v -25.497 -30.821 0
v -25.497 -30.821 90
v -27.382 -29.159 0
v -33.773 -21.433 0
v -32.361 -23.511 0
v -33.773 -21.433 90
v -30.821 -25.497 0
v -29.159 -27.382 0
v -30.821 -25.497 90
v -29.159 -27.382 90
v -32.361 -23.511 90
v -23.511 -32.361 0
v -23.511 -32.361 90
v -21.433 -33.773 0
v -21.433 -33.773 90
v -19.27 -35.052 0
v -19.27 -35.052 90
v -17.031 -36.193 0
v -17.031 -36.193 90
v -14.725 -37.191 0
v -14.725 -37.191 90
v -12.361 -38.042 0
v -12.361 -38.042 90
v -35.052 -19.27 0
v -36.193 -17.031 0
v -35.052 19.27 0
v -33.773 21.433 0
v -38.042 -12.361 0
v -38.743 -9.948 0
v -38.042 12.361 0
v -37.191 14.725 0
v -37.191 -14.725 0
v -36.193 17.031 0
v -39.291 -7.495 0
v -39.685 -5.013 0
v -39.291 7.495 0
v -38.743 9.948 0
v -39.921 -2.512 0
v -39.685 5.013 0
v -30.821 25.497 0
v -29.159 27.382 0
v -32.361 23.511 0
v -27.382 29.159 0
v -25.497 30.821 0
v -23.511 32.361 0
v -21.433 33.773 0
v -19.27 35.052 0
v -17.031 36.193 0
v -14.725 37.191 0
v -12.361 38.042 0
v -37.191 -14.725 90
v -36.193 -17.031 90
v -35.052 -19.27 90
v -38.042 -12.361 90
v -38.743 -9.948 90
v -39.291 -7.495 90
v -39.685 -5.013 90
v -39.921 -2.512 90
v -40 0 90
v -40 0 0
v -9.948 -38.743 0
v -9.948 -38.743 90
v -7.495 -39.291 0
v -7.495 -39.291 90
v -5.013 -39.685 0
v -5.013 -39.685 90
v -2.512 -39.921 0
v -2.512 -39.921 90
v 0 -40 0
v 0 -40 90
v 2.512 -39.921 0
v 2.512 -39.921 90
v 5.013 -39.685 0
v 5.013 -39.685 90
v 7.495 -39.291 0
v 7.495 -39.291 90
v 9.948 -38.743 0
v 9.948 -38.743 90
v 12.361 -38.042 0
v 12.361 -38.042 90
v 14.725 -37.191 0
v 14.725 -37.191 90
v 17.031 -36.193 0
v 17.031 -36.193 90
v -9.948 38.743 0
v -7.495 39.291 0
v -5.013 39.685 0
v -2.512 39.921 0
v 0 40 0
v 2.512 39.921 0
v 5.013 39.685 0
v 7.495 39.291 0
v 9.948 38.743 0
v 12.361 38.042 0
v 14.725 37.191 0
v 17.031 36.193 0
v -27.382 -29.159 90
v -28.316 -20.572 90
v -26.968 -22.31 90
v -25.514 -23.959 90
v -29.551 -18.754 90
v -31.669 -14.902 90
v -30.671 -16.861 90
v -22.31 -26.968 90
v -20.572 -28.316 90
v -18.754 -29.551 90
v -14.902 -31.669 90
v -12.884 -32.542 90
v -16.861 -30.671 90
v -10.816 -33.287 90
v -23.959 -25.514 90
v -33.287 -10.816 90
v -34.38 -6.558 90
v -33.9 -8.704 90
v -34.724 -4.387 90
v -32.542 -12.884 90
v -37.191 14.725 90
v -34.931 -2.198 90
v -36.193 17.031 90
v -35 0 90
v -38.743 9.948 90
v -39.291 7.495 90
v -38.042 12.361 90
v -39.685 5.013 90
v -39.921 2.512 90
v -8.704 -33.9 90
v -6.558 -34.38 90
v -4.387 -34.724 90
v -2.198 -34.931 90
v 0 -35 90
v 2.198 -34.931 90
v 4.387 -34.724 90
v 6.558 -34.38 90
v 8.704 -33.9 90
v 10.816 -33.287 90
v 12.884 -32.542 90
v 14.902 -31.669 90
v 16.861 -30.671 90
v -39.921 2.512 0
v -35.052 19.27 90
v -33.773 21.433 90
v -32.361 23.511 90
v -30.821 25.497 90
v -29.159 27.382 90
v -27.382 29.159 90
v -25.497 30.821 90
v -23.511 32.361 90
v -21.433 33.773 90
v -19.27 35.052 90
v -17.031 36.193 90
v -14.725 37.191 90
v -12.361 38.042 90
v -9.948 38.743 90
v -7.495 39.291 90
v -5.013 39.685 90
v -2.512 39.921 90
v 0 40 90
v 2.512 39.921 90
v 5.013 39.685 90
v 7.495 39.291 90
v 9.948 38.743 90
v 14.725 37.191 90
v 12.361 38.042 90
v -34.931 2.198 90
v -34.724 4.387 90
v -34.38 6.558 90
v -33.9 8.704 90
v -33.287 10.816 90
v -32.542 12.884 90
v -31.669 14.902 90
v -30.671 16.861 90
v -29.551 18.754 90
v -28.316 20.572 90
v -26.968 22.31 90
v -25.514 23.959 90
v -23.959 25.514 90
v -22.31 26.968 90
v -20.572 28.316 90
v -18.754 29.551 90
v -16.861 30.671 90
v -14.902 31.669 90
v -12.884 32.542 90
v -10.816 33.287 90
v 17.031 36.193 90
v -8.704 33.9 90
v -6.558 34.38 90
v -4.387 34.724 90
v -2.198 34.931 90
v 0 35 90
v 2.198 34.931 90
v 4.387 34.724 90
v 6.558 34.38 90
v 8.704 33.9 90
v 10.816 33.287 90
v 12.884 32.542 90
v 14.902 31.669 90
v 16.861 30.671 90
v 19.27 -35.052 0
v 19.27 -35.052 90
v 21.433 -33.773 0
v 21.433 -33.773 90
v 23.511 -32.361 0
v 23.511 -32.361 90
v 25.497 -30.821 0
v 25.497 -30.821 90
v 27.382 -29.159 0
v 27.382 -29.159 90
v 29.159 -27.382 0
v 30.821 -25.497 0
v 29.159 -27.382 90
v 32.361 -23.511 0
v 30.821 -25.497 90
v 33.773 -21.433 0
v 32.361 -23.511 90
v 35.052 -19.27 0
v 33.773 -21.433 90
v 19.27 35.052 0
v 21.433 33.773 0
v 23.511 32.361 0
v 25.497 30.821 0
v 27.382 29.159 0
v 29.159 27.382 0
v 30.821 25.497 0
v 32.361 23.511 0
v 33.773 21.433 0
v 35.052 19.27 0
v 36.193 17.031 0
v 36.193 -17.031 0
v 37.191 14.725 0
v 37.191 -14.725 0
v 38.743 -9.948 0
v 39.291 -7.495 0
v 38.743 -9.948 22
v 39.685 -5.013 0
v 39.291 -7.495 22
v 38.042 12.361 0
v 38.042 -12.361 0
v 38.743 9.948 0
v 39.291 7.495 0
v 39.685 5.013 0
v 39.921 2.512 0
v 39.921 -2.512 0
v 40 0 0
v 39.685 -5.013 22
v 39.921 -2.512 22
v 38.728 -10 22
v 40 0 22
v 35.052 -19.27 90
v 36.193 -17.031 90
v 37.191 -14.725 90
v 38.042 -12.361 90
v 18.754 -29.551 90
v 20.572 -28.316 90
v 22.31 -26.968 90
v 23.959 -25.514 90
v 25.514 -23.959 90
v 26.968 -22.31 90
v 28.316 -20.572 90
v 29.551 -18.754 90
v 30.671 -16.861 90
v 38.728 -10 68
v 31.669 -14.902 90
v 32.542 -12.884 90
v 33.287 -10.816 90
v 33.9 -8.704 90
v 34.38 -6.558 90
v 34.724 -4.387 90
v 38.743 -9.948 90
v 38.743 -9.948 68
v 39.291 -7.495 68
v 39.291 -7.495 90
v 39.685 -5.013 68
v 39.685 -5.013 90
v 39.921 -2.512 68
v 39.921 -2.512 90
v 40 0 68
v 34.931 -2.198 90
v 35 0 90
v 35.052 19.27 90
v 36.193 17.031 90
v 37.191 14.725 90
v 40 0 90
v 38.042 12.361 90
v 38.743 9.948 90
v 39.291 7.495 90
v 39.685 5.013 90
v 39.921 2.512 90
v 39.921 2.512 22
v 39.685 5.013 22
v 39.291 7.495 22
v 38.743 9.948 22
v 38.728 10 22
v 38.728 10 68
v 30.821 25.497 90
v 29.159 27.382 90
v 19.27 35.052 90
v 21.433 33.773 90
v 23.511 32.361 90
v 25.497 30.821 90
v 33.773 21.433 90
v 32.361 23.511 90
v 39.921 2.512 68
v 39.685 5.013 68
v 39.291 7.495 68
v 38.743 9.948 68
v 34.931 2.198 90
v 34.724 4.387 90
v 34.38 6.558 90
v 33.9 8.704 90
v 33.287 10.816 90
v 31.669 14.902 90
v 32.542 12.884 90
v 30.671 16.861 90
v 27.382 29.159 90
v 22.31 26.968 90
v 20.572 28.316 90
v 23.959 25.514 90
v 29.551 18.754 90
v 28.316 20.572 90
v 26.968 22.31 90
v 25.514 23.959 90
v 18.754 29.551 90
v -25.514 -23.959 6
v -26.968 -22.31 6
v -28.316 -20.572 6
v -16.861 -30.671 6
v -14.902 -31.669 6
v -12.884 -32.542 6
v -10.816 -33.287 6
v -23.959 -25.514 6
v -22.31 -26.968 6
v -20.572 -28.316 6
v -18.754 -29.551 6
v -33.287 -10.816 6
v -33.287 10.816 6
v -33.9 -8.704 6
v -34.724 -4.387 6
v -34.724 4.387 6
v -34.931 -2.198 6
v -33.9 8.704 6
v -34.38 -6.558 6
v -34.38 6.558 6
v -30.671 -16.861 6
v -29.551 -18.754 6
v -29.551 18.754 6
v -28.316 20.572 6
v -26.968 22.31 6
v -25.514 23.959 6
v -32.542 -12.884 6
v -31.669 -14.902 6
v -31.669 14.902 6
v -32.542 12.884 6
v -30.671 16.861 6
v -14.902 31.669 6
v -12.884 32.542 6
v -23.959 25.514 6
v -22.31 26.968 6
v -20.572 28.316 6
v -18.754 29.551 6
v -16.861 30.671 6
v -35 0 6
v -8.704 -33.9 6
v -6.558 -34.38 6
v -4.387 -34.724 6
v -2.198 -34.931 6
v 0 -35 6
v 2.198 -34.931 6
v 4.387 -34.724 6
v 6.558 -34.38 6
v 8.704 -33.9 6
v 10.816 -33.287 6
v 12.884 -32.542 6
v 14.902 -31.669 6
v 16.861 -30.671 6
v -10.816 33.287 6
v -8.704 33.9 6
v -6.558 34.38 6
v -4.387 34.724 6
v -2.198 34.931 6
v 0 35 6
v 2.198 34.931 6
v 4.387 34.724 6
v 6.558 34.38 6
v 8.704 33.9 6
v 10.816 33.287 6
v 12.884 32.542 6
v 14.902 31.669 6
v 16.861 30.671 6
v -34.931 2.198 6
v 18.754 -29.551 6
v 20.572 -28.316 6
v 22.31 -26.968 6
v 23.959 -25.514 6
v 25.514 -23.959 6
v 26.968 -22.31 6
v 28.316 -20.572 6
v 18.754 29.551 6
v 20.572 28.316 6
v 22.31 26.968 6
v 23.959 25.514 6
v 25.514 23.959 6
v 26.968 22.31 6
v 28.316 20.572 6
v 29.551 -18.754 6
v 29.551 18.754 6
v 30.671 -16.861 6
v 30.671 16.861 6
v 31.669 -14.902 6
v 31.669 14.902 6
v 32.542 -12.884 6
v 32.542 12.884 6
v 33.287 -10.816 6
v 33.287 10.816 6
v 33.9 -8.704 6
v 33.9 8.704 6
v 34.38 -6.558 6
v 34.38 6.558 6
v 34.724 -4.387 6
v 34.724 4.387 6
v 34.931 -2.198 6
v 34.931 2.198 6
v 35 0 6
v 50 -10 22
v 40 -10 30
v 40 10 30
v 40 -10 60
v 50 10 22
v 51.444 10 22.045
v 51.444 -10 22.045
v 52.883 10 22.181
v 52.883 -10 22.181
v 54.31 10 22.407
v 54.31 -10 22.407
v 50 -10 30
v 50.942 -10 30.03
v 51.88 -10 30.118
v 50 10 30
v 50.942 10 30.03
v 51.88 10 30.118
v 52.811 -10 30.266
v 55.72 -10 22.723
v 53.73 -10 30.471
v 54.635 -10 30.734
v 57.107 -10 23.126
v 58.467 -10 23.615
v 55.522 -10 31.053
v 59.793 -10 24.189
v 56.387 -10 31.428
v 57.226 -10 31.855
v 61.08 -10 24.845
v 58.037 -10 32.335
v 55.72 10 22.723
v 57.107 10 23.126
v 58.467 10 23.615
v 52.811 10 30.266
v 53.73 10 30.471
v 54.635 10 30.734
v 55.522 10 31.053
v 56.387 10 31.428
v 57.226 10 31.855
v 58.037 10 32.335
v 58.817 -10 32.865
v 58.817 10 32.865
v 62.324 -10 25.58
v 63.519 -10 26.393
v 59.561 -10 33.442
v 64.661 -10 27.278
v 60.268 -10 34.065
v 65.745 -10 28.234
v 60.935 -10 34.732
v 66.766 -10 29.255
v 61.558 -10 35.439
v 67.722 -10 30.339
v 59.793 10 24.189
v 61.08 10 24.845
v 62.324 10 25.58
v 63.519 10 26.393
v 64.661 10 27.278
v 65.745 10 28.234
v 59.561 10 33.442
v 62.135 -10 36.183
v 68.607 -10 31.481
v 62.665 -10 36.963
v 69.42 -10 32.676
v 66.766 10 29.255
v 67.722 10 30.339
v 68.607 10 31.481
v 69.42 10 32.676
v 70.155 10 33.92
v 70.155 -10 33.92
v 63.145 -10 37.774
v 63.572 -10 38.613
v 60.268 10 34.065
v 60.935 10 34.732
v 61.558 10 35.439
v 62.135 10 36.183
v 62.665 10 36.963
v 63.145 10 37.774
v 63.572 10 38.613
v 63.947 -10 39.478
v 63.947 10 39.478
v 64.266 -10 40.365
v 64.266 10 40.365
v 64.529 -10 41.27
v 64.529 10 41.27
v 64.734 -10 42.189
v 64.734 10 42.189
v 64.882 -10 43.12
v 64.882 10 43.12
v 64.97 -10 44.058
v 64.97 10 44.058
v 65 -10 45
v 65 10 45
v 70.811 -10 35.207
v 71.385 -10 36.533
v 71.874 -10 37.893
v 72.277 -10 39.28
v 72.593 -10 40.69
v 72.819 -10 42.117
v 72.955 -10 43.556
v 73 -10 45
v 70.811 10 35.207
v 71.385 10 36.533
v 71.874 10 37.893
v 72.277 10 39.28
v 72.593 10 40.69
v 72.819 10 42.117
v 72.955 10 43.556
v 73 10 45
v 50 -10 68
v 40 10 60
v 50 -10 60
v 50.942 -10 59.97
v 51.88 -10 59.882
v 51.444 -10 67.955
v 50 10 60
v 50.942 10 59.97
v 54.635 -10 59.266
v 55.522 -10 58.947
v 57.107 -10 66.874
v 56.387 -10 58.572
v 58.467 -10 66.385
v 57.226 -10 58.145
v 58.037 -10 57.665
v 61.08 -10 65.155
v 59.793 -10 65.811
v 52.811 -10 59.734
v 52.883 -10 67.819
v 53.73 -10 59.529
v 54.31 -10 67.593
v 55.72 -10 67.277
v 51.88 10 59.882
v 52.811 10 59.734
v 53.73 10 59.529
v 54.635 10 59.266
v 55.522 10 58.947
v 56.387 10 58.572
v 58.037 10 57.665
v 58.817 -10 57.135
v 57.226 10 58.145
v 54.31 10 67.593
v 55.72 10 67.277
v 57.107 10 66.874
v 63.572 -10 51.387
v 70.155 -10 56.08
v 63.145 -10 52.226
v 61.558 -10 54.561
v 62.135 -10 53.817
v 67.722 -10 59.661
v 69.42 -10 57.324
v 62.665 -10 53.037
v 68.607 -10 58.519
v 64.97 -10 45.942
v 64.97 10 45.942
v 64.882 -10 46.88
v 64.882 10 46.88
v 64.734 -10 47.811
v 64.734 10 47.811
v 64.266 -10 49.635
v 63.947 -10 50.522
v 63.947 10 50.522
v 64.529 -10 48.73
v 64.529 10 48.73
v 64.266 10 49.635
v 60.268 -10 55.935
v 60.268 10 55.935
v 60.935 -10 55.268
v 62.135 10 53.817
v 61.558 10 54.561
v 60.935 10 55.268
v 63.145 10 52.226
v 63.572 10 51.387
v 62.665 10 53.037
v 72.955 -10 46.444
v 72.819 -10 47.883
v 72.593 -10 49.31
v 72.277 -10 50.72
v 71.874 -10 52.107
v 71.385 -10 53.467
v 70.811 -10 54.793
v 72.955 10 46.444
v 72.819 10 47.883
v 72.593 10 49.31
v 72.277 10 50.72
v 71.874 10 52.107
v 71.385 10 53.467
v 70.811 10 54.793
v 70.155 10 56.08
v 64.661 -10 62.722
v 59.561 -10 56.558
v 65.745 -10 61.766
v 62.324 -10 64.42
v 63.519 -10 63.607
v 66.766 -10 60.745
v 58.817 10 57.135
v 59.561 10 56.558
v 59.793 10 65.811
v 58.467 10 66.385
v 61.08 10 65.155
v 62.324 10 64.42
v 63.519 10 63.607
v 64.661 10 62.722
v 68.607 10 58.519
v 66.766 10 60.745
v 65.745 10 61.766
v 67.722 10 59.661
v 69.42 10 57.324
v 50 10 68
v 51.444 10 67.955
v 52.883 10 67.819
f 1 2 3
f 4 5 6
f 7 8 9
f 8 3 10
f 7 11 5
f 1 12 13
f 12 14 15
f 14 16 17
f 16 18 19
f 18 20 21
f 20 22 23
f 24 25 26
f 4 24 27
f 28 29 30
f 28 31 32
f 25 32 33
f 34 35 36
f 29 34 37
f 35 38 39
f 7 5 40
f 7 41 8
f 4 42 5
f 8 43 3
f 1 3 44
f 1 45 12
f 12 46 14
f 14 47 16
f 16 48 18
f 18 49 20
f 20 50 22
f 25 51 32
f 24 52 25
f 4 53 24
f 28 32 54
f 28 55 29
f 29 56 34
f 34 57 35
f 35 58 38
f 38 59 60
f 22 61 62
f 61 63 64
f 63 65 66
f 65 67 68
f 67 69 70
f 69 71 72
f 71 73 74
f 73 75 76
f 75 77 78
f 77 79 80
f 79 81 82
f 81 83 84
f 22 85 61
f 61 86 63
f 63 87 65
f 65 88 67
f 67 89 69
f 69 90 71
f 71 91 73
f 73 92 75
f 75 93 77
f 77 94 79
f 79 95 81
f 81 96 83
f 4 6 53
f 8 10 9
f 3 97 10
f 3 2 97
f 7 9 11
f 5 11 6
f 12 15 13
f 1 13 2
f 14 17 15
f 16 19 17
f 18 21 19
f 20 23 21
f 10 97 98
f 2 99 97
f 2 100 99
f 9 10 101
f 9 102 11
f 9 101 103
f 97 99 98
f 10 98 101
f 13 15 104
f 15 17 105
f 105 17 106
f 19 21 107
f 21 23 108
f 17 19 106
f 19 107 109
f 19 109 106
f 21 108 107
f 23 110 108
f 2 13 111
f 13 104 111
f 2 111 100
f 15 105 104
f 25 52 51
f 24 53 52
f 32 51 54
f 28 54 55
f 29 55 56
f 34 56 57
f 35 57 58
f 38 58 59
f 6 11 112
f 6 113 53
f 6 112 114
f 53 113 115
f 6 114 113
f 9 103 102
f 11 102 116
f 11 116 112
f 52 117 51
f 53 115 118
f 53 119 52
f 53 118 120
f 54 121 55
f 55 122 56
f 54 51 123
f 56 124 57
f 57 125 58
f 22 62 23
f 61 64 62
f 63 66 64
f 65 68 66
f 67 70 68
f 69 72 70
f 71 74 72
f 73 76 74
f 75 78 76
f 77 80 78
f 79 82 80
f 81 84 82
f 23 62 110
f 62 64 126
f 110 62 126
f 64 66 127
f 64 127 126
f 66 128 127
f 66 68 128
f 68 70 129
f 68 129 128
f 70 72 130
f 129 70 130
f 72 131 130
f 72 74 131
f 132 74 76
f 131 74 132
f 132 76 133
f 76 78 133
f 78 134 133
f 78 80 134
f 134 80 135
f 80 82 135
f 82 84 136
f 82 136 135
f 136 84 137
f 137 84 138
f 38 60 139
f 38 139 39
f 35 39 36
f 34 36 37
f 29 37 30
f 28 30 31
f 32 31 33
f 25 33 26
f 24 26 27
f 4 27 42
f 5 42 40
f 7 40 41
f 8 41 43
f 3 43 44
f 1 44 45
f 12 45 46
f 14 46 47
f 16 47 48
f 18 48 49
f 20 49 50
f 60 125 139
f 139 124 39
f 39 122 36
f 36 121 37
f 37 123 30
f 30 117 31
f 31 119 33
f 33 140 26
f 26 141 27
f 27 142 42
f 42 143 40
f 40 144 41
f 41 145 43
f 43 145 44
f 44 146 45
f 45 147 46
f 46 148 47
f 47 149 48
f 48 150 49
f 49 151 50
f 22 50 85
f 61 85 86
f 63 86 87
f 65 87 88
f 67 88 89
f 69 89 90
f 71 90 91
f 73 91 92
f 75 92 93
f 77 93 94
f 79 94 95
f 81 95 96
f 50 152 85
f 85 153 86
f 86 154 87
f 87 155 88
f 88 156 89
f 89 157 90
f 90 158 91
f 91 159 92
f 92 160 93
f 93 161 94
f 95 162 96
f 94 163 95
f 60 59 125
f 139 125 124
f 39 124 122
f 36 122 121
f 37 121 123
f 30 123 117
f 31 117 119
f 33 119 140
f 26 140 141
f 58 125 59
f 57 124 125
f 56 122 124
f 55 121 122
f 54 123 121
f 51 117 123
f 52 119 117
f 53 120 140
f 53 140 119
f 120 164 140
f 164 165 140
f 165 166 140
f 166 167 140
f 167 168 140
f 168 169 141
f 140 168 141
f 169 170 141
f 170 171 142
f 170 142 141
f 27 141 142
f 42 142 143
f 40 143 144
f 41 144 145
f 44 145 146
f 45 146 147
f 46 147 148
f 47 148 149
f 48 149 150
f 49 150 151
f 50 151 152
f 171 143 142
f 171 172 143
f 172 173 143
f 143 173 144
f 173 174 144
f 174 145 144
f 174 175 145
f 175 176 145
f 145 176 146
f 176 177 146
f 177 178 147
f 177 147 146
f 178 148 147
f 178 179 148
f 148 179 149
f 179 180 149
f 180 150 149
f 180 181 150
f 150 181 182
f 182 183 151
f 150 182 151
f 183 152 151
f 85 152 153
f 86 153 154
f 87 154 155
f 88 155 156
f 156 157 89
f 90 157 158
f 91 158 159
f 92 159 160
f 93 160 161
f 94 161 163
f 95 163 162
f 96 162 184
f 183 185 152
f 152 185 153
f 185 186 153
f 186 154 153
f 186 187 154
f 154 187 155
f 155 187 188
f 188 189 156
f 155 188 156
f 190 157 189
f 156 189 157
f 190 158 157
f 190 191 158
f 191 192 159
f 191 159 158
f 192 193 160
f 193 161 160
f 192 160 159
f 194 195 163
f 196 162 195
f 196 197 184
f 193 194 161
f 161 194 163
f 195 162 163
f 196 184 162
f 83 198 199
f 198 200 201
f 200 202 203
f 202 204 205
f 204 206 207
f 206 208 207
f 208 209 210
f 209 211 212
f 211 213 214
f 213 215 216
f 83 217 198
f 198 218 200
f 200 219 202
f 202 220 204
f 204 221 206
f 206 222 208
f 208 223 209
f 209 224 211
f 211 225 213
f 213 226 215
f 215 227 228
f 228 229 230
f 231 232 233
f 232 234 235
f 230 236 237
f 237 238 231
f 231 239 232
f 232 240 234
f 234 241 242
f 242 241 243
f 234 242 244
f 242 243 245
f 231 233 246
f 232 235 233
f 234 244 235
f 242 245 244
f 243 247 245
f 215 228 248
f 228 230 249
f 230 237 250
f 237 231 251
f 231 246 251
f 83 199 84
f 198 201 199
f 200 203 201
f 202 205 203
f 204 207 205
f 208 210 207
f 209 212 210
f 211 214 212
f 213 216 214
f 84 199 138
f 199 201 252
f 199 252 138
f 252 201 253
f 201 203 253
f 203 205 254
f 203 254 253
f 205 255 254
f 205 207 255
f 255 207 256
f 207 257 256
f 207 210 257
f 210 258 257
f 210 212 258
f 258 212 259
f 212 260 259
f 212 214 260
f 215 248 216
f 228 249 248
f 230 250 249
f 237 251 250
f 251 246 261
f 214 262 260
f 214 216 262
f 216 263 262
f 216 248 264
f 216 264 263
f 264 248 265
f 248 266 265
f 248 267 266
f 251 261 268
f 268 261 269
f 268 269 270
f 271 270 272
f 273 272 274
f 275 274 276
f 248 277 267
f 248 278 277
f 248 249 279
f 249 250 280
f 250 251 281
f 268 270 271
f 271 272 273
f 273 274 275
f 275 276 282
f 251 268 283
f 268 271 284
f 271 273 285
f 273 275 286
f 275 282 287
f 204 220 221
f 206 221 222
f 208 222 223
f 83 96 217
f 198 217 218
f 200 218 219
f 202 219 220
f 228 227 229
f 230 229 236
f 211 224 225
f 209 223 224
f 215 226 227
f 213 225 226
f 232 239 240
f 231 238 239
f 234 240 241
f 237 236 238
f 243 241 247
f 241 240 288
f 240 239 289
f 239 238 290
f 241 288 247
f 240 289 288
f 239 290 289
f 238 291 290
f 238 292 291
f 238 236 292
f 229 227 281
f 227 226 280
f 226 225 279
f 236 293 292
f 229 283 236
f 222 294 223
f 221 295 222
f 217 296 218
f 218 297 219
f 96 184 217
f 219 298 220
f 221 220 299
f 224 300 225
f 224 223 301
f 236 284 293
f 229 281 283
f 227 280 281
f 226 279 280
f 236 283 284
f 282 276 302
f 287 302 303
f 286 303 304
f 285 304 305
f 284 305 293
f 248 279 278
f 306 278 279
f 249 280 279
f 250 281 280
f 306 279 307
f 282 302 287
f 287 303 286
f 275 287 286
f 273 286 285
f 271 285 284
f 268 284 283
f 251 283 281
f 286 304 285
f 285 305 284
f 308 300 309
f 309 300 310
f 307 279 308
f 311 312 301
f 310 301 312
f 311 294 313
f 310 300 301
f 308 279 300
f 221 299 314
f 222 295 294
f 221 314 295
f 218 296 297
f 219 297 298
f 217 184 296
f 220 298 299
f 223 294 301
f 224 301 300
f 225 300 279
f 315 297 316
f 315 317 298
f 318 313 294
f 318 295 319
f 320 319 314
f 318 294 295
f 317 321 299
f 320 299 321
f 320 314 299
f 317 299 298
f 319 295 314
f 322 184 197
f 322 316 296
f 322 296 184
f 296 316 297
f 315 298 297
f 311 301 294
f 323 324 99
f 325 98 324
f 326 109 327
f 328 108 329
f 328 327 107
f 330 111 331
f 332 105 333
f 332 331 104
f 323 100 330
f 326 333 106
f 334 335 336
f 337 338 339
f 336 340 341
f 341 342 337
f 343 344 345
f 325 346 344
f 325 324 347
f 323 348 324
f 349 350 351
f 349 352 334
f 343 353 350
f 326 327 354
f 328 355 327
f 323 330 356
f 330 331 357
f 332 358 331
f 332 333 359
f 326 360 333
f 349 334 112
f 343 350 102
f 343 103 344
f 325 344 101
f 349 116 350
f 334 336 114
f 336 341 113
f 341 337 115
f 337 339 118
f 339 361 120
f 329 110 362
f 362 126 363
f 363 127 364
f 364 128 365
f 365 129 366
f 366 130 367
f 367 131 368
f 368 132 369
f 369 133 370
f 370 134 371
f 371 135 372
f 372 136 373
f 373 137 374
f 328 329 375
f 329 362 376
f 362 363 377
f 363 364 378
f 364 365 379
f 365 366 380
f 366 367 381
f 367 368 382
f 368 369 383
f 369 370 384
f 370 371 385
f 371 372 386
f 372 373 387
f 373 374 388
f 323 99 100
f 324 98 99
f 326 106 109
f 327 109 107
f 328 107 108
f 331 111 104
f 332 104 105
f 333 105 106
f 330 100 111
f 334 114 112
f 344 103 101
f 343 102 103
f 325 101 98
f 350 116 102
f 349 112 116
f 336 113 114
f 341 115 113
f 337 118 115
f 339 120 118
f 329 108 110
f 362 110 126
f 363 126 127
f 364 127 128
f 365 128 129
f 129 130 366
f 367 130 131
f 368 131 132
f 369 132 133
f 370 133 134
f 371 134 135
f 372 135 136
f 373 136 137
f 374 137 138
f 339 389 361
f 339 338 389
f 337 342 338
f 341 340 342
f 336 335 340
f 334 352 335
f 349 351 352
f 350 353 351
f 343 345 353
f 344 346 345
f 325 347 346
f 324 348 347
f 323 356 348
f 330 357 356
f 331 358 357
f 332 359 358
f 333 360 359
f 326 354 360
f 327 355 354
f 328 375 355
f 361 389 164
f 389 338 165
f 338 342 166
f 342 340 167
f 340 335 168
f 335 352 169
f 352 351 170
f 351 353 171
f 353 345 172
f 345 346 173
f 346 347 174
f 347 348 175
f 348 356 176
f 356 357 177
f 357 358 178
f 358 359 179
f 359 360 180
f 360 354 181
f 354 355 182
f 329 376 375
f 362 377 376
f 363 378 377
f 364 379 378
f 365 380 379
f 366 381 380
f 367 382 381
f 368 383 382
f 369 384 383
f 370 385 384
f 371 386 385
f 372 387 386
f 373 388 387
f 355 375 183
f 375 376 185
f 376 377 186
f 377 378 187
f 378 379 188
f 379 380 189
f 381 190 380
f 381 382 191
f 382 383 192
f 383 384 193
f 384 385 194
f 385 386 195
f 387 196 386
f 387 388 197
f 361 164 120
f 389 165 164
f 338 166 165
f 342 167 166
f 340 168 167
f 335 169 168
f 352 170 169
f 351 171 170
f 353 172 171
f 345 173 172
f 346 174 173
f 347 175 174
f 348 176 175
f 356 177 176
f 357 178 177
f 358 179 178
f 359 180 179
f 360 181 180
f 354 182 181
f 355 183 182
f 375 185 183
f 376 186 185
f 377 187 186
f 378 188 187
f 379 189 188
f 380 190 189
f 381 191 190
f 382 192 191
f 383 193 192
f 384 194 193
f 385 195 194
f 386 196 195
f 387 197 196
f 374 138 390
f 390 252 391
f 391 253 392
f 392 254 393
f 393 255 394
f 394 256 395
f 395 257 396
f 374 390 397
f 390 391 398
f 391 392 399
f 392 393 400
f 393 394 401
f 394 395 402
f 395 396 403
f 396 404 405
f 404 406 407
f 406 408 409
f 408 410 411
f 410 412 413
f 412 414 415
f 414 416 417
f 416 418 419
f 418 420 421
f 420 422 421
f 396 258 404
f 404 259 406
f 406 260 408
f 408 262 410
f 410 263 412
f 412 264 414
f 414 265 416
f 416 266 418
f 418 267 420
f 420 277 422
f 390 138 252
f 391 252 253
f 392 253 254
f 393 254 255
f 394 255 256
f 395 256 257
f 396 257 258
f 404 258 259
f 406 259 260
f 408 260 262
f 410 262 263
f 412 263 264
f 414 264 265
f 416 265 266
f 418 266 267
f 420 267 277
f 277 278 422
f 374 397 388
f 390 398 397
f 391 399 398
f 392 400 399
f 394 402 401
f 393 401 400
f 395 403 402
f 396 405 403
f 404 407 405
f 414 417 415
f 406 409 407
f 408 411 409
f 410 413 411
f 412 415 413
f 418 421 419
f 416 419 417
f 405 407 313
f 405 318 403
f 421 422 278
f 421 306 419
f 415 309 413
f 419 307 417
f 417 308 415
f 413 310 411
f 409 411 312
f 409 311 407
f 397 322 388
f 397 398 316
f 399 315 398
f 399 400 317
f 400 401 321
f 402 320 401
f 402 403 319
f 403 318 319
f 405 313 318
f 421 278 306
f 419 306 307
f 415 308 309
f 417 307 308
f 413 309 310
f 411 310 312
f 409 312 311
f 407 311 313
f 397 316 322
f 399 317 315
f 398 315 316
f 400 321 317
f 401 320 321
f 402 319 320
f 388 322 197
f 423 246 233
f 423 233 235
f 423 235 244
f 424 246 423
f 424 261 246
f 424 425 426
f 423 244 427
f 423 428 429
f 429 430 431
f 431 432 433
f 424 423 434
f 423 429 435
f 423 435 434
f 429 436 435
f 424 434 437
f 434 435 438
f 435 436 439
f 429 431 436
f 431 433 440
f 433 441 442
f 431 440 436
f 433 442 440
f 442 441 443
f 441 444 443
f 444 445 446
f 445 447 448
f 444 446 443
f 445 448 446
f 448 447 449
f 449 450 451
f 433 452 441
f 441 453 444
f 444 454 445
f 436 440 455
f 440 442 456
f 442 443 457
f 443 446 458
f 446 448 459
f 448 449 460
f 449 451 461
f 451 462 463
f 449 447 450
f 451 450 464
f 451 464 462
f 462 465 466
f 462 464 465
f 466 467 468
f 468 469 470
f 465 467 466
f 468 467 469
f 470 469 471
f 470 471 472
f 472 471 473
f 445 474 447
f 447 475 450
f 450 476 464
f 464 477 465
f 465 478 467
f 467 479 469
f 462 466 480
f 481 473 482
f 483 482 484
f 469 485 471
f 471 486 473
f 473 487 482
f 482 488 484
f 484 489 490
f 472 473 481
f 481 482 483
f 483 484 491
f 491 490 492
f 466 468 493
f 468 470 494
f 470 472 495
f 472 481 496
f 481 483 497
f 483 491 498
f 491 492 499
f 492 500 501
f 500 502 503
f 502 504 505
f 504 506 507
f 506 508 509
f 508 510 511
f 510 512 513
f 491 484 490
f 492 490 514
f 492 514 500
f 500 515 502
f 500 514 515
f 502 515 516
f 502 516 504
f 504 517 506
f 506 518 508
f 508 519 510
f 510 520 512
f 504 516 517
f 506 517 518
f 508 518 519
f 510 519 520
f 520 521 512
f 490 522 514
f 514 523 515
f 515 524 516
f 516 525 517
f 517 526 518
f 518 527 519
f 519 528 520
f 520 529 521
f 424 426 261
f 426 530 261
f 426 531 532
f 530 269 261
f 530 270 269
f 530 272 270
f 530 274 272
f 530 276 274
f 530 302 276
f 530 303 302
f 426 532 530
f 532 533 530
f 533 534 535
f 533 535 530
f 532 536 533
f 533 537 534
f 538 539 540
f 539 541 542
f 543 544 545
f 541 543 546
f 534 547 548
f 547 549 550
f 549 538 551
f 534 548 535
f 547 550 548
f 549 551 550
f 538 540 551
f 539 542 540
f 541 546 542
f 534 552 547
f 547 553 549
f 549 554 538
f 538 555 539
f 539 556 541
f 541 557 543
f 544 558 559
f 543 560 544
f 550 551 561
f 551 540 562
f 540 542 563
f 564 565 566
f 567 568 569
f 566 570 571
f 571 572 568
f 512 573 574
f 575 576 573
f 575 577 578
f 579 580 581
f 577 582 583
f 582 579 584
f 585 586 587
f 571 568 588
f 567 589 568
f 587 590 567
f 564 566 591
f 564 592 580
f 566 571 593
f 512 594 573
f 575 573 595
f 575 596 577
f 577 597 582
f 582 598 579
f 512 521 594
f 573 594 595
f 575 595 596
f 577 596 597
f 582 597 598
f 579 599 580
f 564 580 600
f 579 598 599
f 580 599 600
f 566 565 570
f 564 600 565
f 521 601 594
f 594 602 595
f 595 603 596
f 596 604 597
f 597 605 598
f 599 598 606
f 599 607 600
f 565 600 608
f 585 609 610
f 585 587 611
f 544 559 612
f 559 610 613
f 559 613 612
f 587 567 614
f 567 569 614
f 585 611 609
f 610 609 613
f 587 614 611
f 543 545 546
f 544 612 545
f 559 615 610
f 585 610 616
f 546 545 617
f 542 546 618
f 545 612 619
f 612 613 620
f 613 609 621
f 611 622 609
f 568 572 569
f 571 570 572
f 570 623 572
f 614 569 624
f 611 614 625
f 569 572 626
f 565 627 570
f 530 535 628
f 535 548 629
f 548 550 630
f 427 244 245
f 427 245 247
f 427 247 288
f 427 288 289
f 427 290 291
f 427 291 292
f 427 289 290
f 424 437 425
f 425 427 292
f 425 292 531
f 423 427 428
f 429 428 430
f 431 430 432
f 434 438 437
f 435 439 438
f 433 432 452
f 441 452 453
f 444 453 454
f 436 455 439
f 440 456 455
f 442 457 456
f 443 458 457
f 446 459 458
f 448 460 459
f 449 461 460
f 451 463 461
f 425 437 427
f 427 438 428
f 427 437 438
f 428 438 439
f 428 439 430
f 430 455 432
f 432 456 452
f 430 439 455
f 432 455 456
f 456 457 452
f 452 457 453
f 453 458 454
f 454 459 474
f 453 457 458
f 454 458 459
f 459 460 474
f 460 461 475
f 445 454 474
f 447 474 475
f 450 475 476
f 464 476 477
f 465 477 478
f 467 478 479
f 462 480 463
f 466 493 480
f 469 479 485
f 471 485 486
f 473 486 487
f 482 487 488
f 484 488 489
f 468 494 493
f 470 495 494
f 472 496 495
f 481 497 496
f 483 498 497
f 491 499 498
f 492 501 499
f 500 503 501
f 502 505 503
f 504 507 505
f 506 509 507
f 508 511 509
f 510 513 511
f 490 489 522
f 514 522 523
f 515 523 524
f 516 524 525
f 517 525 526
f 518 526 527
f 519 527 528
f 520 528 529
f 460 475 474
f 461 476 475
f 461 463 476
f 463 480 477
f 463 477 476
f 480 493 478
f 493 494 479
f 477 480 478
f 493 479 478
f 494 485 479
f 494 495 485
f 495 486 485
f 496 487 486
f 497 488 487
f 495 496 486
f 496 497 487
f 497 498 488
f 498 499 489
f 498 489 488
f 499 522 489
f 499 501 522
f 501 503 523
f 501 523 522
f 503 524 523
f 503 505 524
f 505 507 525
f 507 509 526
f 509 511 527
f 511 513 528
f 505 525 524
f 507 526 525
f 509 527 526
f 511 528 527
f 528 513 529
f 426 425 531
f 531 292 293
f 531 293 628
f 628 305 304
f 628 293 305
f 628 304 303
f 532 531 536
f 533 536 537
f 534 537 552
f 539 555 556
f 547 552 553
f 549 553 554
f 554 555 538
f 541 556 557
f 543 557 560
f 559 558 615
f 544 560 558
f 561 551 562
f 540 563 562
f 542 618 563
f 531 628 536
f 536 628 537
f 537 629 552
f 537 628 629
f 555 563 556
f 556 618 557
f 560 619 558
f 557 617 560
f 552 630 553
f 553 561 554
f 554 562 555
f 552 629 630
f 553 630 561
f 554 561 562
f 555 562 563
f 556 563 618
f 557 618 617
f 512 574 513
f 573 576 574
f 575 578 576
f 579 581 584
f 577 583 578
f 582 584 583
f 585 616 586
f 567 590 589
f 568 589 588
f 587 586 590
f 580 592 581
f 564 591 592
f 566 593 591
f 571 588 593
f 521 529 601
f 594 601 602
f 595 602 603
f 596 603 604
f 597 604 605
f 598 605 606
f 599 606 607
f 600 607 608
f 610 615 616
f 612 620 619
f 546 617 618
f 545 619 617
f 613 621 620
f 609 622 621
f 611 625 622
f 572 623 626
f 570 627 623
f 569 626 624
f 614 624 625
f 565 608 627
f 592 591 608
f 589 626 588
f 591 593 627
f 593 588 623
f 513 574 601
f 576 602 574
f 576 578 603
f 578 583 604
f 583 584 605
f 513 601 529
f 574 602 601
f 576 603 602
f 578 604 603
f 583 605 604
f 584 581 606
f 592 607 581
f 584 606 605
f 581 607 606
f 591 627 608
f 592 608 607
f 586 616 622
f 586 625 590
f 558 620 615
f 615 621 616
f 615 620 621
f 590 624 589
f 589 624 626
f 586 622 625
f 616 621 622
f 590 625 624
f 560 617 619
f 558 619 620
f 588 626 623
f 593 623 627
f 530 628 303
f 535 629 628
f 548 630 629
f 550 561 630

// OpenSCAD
$fn = 100;

// ==================== パラメータ ====================
// マグ本体
mug_outer_r  = 40;   // 外径80mm
mug_inner_r  = 35;   // 内径70mm(肉厚5mm)
mug_height   = 90;
bottom_thick = 6;

// 取手
handle_hole_h   = 30;  // 取手内側空間の高さ
handle_hole_w   = 25;  // 取手内側空間の幅(本体表面からの突き出し量)
handle_band_t   = 8;   // 取手バンド material の太さ
handle_width    = 20;  // 取手のY方向(奥行き)の幅
handle_embed    = 4;   // 本体側への埋め込み量(確実に union するため)
handle_center_z = mug_height / 2; // 高さ方向中央

// ==================== マグ本体 ====================
module mug_body() {
    difference() {
        cylinder(r = mug_outer_r, h = mug_height);
        translate([0, 0, bottom_thick])
            cylinder(r = mug_inner_r, h = mug_height - bottom_thick + 2);
    }
}

// ==================== D字プロファイル(2D断面) ====================
// flat_u : 本体側の直線部分のu座標(まっすぐな辺)
// far_u  : 先端(半円の頂点)のu座標
// half_h : 高さの半分
// r      : 半円部分の半径
module d_profile(flat_u, far_u, half_h, r) {
    rect_w = far_u - r - flat_u;
    intersection() {
        union() {
            if (rect_w > 0) {
                translate([flat_u, -half_h])
                    square([rect_w, 2 * half_h]);
            }
            translate([far_u - r, 0])
                circle(r = r);
        }
        // flat_u より内側(本体側)にはみ出た部分を切り落として直線にする
        translate([flat_u, -1000])
            square([2000, 2000]);
    }
}

// ==================== 取手(+X方向のみ) ====================
module handle() {
    hole_half_h = handle_hole_h / 2;
    hole_r      = hole_half_h;
    flat_u_hole = mug_outer_r;                 // 穴は本体表面から
    far_u_hole  = flat_u_hole + handle_hole_w; // 穴の奥行き25mm

    outer_half_h = hole_half_h + handle_band_t;
    outer_r      = outer_half_h;
    flat_u_outer = mug_outer_r - handle_embed; // 本体内部へ埋め込む
    far_u_outer  = far_u_hole + handle_band_t; // 外周は穴+バンド厚

    translate([0, 0, handle_center_z])
        rotate([90, 0, 0])
            linear_extrude(height = handle_width, center = true)
                difference() {
                    d_profile(flat_u_outer, far_u_outer, outer_half_h, outer_r);
                    d_profile(flat_u_hole,  far_u_hole,  hole_half_h,  hole_r);
                }
}

// ==================== 組み立て ====================
union() {
    mug_body();
    handle();
}
